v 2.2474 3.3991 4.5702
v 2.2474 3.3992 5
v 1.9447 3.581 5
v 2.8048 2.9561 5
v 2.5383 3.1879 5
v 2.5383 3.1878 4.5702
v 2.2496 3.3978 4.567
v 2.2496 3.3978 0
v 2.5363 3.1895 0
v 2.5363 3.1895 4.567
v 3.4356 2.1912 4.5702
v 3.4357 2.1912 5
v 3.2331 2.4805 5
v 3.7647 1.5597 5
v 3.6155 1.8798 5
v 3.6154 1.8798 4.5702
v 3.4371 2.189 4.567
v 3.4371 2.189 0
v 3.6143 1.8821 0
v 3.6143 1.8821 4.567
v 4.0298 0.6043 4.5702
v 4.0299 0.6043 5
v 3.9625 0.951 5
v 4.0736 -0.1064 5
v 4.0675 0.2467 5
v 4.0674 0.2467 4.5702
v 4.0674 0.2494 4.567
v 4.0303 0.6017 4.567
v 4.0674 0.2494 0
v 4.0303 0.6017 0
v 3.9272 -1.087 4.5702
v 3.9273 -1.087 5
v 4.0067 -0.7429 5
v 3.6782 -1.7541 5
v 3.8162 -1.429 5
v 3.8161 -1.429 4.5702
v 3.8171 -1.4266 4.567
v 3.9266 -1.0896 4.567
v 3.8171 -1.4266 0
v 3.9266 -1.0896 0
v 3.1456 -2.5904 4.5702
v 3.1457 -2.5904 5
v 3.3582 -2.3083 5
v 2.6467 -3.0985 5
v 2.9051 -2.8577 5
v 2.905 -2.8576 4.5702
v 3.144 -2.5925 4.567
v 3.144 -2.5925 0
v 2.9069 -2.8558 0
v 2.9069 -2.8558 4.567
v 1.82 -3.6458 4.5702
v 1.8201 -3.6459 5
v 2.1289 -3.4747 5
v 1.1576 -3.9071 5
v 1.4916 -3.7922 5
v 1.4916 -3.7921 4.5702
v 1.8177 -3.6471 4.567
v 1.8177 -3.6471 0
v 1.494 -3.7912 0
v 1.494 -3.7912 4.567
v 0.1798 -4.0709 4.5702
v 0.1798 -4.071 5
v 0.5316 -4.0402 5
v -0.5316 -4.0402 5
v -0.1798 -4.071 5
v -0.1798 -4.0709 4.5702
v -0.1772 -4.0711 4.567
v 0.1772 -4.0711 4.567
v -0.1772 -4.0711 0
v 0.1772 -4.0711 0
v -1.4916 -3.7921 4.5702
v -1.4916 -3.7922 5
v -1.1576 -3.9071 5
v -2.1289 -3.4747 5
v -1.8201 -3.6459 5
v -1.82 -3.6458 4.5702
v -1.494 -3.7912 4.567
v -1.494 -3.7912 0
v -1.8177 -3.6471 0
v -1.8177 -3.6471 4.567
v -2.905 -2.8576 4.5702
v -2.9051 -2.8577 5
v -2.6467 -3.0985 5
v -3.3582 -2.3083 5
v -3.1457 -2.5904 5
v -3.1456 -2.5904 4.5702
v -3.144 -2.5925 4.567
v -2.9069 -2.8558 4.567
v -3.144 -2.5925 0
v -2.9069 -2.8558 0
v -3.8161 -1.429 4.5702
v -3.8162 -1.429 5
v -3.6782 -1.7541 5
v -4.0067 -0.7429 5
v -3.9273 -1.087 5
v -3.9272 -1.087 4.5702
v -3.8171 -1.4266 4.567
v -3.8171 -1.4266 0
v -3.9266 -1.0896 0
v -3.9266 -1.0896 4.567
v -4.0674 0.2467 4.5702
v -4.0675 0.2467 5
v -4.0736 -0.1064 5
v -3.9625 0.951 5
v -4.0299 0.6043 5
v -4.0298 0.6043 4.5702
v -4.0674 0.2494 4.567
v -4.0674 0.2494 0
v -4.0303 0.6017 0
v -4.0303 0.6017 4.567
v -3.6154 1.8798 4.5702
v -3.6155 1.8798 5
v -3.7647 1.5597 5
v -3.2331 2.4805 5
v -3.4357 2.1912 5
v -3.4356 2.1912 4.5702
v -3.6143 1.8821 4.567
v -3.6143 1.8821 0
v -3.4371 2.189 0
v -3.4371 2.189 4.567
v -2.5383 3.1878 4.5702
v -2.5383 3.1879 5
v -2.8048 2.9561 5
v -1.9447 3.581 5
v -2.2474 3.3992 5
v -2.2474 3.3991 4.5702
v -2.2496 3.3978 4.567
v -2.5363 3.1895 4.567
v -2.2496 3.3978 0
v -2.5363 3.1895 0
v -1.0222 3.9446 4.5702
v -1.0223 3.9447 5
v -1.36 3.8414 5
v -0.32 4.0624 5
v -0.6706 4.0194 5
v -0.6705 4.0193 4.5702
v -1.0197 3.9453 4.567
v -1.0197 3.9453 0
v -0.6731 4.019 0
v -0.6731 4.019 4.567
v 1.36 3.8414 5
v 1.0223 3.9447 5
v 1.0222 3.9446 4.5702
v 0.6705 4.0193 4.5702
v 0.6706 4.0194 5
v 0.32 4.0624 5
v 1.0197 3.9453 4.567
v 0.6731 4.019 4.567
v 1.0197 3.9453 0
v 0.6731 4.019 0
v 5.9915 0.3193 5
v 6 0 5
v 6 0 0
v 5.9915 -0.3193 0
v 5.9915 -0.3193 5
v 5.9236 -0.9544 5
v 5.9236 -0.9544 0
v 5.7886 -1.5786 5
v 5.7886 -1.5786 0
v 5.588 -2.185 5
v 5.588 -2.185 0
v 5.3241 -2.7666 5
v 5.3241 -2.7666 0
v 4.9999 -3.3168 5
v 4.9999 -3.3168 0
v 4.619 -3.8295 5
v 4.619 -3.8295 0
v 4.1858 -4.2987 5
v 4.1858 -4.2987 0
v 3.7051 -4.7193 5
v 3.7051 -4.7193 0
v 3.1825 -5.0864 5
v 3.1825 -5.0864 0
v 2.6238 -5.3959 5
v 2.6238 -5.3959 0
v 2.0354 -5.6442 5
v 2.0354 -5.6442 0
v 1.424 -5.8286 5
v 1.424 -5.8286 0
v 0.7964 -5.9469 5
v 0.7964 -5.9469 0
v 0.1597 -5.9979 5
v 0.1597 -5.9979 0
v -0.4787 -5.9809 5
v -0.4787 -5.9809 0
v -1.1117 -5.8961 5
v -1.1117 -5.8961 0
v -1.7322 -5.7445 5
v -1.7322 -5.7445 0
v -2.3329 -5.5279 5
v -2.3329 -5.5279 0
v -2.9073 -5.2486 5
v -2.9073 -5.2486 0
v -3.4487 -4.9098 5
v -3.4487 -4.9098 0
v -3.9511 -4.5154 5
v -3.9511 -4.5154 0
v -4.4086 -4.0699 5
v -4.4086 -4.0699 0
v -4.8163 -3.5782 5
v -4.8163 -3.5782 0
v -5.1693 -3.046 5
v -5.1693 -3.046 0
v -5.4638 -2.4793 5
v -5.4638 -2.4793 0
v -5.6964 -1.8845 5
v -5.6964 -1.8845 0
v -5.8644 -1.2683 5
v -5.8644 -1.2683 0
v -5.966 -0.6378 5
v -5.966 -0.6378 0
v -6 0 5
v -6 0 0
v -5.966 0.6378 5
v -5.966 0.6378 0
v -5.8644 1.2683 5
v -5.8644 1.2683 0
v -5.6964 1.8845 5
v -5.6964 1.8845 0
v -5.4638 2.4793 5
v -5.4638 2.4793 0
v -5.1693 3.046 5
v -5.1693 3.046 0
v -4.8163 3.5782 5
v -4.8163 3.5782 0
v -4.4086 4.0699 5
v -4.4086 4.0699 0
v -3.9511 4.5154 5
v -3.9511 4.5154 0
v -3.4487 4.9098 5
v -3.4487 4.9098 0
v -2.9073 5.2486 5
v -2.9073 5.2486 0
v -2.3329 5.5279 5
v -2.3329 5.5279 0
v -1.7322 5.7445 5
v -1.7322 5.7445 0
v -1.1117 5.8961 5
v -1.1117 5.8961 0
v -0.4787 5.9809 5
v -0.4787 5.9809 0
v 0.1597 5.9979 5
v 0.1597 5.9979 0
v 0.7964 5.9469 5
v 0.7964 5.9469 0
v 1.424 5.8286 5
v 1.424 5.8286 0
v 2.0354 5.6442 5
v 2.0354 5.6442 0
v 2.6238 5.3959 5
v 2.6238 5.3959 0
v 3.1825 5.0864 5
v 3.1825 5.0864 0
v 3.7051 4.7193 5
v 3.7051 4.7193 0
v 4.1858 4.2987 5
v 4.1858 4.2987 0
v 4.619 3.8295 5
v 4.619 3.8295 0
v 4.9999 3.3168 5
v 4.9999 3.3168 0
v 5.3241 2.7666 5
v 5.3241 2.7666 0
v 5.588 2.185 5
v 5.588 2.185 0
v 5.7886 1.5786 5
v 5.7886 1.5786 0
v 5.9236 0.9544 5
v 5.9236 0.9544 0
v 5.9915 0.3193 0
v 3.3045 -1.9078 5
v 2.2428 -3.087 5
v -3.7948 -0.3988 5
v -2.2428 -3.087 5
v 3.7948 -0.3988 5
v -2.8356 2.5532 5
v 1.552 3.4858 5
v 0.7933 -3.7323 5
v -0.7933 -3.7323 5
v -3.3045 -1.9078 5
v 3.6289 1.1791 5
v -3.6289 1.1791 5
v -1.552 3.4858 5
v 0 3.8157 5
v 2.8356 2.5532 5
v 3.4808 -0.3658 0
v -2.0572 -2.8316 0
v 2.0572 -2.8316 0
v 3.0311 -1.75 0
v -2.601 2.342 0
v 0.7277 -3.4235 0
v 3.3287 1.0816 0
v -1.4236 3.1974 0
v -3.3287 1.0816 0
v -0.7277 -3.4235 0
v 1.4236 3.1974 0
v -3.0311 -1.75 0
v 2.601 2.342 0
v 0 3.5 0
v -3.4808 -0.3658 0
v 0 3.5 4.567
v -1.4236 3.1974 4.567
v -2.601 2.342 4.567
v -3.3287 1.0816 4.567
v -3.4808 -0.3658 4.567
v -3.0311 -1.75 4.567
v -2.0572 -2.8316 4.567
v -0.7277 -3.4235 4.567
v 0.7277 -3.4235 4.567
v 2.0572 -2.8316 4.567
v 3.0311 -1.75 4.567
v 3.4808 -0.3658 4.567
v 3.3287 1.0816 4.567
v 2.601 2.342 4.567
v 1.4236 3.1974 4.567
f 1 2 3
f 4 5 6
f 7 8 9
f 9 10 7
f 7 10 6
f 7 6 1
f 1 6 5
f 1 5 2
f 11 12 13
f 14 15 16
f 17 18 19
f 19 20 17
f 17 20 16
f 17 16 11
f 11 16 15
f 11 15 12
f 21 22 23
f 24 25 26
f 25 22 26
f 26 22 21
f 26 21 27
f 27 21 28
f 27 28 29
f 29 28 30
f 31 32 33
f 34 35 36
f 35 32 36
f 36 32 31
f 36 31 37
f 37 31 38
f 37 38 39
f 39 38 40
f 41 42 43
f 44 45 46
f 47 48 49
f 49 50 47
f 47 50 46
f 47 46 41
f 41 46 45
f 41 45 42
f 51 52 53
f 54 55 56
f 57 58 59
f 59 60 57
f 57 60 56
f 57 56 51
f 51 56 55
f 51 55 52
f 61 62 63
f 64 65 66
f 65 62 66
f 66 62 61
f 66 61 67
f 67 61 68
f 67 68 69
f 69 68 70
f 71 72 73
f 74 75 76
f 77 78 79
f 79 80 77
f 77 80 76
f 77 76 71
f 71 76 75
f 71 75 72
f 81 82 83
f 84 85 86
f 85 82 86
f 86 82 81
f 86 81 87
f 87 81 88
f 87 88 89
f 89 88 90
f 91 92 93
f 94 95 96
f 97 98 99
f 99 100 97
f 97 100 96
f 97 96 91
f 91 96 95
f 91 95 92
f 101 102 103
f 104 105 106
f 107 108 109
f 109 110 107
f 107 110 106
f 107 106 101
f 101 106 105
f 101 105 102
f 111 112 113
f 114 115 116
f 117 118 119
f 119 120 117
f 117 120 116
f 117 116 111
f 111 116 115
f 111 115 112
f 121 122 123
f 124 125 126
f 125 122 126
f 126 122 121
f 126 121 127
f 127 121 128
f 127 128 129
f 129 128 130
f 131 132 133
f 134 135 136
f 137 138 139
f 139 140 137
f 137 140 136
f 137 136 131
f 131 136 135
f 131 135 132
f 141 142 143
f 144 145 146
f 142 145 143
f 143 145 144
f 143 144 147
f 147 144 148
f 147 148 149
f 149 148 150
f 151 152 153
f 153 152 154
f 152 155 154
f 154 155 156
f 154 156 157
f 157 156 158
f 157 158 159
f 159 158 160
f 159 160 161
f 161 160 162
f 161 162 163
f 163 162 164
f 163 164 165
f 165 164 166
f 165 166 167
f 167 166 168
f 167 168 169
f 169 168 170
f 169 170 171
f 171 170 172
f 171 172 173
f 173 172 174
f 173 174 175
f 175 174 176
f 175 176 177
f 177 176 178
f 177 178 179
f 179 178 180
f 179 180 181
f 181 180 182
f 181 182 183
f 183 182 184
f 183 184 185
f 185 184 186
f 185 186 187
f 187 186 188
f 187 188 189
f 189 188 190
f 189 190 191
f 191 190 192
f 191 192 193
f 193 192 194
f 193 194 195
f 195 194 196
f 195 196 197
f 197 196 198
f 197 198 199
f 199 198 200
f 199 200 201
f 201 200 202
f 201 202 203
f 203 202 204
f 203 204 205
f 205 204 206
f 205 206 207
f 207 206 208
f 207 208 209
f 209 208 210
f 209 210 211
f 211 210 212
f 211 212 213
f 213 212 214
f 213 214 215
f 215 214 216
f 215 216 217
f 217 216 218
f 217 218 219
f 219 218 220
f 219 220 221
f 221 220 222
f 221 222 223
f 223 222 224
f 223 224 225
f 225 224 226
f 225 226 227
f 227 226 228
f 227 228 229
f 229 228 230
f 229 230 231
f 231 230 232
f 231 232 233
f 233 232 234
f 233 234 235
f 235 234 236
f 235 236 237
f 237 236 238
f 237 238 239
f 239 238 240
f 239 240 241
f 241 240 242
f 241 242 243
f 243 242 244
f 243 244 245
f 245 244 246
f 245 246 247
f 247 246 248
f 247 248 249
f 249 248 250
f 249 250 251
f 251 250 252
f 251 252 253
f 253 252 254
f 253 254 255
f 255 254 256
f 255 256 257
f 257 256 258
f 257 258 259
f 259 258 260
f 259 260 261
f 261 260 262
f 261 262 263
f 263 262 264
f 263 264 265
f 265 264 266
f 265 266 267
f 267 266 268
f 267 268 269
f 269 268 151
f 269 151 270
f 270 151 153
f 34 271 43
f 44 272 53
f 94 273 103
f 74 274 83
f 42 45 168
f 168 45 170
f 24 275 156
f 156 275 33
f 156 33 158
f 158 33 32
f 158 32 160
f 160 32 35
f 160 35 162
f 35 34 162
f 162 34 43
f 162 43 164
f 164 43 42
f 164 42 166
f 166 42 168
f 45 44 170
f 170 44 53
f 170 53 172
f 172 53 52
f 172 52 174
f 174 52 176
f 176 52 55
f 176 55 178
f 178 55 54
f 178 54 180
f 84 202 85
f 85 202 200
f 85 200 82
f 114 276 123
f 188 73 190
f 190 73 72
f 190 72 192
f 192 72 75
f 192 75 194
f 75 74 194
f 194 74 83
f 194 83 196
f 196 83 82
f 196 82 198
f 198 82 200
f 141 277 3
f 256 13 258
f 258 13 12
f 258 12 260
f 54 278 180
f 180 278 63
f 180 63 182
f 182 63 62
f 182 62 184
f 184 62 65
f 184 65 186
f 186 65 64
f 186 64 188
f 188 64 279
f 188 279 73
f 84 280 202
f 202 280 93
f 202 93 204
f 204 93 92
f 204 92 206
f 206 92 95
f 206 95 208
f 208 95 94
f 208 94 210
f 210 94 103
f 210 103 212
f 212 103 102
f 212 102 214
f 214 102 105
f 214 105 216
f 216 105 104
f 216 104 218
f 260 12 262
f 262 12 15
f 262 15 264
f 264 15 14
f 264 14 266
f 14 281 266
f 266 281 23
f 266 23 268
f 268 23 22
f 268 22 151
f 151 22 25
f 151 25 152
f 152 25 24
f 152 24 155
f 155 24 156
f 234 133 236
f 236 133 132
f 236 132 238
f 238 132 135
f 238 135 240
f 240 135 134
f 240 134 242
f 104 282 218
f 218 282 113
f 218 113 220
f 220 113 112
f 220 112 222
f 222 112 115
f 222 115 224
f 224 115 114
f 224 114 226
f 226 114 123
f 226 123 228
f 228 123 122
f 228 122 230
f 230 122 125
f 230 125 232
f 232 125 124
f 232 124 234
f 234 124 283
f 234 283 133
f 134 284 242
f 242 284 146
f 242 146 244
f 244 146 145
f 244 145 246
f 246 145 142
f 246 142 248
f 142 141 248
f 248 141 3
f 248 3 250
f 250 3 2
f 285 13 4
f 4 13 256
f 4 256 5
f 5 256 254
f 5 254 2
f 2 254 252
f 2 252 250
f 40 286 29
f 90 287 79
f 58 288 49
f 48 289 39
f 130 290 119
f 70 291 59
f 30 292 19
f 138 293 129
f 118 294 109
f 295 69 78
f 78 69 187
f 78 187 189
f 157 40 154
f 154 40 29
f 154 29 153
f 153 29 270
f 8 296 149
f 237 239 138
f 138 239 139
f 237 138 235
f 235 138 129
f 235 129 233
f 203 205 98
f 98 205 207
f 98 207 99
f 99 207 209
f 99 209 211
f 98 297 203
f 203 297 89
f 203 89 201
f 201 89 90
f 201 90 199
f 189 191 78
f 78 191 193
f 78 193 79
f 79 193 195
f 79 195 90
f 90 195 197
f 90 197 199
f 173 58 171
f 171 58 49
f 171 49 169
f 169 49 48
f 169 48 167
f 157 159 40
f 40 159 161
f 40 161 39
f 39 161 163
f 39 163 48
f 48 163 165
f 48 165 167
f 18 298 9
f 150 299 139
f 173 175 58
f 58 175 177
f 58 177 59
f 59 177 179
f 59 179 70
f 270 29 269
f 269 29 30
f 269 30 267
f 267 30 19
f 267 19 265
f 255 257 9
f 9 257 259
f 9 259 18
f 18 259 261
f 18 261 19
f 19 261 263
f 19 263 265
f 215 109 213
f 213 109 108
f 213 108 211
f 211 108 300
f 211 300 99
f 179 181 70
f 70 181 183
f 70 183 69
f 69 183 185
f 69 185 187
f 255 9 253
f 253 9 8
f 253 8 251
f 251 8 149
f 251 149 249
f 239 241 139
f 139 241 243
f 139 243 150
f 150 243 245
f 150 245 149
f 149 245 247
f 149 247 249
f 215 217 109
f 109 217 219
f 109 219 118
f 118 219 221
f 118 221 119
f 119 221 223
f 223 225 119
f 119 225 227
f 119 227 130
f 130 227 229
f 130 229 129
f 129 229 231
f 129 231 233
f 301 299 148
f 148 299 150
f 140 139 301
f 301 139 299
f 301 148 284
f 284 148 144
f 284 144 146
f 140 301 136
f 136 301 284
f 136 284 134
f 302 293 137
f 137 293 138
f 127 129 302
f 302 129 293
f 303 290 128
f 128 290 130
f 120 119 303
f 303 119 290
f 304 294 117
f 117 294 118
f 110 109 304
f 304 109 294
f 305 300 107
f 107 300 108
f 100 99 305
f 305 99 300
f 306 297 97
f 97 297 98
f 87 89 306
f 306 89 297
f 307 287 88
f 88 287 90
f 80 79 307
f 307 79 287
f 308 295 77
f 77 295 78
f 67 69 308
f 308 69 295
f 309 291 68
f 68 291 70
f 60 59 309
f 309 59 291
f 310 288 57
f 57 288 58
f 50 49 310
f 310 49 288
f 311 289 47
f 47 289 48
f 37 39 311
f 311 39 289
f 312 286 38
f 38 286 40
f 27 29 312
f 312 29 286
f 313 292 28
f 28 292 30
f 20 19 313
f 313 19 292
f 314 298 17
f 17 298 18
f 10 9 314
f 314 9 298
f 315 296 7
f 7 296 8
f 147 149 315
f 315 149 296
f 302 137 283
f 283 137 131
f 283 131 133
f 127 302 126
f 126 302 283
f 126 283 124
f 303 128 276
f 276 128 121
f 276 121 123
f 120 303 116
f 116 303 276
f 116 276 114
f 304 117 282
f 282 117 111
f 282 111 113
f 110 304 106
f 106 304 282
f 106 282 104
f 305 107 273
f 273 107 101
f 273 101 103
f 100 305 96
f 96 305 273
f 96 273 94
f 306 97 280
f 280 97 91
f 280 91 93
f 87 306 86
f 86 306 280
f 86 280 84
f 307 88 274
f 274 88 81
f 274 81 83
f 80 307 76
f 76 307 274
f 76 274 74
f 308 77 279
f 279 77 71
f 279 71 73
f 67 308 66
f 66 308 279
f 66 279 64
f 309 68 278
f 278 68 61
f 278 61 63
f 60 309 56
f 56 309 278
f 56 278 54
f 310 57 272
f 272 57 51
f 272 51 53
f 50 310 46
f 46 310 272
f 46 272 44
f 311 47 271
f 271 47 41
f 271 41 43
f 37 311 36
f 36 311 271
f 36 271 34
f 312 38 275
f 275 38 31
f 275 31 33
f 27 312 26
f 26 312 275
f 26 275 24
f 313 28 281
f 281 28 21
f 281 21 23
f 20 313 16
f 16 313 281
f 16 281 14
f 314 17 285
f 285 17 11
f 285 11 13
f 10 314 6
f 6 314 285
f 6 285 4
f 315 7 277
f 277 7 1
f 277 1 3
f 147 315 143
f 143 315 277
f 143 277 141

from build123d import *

# Parameters (mm, degrees)
SKETCH1_R                          = 6
SKETCH1_R_2                        = 4.075
RING_DEPTH                         = 5
SINGLE_TEETH_DEPTH                 = 5
TEETHCHAMPFER_SIZE                 = 0.25
TEETHCHAMPFER_SIZE2                = 0.433012702
F_15TH_TEETHS_COUNT                = 15
TEETHCHAMPFER_OF_15TH_TEETHS_SIZE2 = 0.433012702
TEETHCHAMPFER_OF_15TH_TEETHS_SIZE  = 0.25


with BuildPart() as part:
    # Sketch1 → ring (new body)
    with BuildSketch(Plane.XY):
        Circle(SKETCH1_R)
        Circle(SKETCH1_R_2, mode=Mode.SUBTRACT)
    extrude(amount=RING_DEPTH)

    # Sketch1<4> → single teeth (add)
    with BuildSketch(Plane.XY):
        with BuildLine():
            Line((-0.673142232, 4.019017857), (0, 3.5))
            Line((0, 3.5), (0.673142232, 4.019017857))
            ThreePointArc((0.673142232, 4.019017857), (0, 4.075), (-0.673142232, 4.019017857))
        make_face()
    single_teeth = extrude(amount=SINGLE_TEETH_DEPTH)

    # teethChampfer
    teethchampfer_edges = [part.edges().sort_by_distance(p)[0] for p in [
        (-0.336571116, 3.759508929, 5),
        (0.336571116, 3.759508929, 5),
    ]]
    teethchampfer_side = [part.faces().sort_by_distance(p)[0] for p in [
        (-5.830294373, 0, 5),
    ]]
    chamfer(teethchampfer_edges, length=TEETHCHAMPFER_SIZE, length2=TEETHCHAMPFER_SIZE2, reference=teethchampfer_side[0])

    # 15th teeths: single teeth ×15 about axis
    f_15th_teeths_axis = Axis((0, 0, 0), (0, 0, 1))
    for i in range(1, F_15TH_TEETHS_COUNT):
        add(single_teeth.rotate(f_15th_teeths_axis, i * 360 / F_15TH_TEETHS_COUNT))

    # teethChampfer of 15th teeths
    teethchampfer_of_15th_teeths_edges = [part.edges().sort_by_distance(p)[0] for p in [
        (-1.836603055, 3.297586499, 5),
        (-1.221657027, 3.57137811, 5),
        (-3.019069641, 2.265481406, 5),
        (-2.568649572, 2.765723572, 5),
        (-3.679511659, 0.841653997, 5),
        (-3.47149927, 1.481850302, 5),
        (-3.703732684, -0.727703035, 5),
        (-3.774095207, -0.058248347, 5),
        (-3.08754468, -2.171233601, 5),
        (-3.424115796, -1.588275328, 5),
        (-1.937492152, -3.239338152, 5),
        (-2.482075657, -2.843675076, 5),
        (-0.452429629, -3.747331708, 5),
        (-1.110862087, -3.607377569, 5),
        (1.110862087, -3.607377569, 5),
        (0.452429629, -3.747331708, 5),
        (2.482075657, -2.843675076, 5),
        (1.937492152, -3.239338152, 5),
        (3.424115796, -1.588275328, 5),
        (3.08754468, -2.171233601, 5),
        (3.774095207, -0.058248347, 5),
        (3.703732684, -0.727703035, 5),
        (3.47149927, 1.481850302, 5),
        (3.679511659, 0.841653997, 5),
        (2.568649572, 2.765723572, 5),
        (3.019069641, 2.265481406, 5),
        (1.221657027, 3.57137811, 5),
        (1.836603055, 3.297586499, 5),
    ]]
    chamfer(teethchampfer_of_15th_teeths_edges, length=TEETHCHAMPFER_OF_15TH_TEETHS_SIZE, length2=TEETHCHAMPFER_OF_15TH_TEETHS_SIZE2)


solid = part.part
